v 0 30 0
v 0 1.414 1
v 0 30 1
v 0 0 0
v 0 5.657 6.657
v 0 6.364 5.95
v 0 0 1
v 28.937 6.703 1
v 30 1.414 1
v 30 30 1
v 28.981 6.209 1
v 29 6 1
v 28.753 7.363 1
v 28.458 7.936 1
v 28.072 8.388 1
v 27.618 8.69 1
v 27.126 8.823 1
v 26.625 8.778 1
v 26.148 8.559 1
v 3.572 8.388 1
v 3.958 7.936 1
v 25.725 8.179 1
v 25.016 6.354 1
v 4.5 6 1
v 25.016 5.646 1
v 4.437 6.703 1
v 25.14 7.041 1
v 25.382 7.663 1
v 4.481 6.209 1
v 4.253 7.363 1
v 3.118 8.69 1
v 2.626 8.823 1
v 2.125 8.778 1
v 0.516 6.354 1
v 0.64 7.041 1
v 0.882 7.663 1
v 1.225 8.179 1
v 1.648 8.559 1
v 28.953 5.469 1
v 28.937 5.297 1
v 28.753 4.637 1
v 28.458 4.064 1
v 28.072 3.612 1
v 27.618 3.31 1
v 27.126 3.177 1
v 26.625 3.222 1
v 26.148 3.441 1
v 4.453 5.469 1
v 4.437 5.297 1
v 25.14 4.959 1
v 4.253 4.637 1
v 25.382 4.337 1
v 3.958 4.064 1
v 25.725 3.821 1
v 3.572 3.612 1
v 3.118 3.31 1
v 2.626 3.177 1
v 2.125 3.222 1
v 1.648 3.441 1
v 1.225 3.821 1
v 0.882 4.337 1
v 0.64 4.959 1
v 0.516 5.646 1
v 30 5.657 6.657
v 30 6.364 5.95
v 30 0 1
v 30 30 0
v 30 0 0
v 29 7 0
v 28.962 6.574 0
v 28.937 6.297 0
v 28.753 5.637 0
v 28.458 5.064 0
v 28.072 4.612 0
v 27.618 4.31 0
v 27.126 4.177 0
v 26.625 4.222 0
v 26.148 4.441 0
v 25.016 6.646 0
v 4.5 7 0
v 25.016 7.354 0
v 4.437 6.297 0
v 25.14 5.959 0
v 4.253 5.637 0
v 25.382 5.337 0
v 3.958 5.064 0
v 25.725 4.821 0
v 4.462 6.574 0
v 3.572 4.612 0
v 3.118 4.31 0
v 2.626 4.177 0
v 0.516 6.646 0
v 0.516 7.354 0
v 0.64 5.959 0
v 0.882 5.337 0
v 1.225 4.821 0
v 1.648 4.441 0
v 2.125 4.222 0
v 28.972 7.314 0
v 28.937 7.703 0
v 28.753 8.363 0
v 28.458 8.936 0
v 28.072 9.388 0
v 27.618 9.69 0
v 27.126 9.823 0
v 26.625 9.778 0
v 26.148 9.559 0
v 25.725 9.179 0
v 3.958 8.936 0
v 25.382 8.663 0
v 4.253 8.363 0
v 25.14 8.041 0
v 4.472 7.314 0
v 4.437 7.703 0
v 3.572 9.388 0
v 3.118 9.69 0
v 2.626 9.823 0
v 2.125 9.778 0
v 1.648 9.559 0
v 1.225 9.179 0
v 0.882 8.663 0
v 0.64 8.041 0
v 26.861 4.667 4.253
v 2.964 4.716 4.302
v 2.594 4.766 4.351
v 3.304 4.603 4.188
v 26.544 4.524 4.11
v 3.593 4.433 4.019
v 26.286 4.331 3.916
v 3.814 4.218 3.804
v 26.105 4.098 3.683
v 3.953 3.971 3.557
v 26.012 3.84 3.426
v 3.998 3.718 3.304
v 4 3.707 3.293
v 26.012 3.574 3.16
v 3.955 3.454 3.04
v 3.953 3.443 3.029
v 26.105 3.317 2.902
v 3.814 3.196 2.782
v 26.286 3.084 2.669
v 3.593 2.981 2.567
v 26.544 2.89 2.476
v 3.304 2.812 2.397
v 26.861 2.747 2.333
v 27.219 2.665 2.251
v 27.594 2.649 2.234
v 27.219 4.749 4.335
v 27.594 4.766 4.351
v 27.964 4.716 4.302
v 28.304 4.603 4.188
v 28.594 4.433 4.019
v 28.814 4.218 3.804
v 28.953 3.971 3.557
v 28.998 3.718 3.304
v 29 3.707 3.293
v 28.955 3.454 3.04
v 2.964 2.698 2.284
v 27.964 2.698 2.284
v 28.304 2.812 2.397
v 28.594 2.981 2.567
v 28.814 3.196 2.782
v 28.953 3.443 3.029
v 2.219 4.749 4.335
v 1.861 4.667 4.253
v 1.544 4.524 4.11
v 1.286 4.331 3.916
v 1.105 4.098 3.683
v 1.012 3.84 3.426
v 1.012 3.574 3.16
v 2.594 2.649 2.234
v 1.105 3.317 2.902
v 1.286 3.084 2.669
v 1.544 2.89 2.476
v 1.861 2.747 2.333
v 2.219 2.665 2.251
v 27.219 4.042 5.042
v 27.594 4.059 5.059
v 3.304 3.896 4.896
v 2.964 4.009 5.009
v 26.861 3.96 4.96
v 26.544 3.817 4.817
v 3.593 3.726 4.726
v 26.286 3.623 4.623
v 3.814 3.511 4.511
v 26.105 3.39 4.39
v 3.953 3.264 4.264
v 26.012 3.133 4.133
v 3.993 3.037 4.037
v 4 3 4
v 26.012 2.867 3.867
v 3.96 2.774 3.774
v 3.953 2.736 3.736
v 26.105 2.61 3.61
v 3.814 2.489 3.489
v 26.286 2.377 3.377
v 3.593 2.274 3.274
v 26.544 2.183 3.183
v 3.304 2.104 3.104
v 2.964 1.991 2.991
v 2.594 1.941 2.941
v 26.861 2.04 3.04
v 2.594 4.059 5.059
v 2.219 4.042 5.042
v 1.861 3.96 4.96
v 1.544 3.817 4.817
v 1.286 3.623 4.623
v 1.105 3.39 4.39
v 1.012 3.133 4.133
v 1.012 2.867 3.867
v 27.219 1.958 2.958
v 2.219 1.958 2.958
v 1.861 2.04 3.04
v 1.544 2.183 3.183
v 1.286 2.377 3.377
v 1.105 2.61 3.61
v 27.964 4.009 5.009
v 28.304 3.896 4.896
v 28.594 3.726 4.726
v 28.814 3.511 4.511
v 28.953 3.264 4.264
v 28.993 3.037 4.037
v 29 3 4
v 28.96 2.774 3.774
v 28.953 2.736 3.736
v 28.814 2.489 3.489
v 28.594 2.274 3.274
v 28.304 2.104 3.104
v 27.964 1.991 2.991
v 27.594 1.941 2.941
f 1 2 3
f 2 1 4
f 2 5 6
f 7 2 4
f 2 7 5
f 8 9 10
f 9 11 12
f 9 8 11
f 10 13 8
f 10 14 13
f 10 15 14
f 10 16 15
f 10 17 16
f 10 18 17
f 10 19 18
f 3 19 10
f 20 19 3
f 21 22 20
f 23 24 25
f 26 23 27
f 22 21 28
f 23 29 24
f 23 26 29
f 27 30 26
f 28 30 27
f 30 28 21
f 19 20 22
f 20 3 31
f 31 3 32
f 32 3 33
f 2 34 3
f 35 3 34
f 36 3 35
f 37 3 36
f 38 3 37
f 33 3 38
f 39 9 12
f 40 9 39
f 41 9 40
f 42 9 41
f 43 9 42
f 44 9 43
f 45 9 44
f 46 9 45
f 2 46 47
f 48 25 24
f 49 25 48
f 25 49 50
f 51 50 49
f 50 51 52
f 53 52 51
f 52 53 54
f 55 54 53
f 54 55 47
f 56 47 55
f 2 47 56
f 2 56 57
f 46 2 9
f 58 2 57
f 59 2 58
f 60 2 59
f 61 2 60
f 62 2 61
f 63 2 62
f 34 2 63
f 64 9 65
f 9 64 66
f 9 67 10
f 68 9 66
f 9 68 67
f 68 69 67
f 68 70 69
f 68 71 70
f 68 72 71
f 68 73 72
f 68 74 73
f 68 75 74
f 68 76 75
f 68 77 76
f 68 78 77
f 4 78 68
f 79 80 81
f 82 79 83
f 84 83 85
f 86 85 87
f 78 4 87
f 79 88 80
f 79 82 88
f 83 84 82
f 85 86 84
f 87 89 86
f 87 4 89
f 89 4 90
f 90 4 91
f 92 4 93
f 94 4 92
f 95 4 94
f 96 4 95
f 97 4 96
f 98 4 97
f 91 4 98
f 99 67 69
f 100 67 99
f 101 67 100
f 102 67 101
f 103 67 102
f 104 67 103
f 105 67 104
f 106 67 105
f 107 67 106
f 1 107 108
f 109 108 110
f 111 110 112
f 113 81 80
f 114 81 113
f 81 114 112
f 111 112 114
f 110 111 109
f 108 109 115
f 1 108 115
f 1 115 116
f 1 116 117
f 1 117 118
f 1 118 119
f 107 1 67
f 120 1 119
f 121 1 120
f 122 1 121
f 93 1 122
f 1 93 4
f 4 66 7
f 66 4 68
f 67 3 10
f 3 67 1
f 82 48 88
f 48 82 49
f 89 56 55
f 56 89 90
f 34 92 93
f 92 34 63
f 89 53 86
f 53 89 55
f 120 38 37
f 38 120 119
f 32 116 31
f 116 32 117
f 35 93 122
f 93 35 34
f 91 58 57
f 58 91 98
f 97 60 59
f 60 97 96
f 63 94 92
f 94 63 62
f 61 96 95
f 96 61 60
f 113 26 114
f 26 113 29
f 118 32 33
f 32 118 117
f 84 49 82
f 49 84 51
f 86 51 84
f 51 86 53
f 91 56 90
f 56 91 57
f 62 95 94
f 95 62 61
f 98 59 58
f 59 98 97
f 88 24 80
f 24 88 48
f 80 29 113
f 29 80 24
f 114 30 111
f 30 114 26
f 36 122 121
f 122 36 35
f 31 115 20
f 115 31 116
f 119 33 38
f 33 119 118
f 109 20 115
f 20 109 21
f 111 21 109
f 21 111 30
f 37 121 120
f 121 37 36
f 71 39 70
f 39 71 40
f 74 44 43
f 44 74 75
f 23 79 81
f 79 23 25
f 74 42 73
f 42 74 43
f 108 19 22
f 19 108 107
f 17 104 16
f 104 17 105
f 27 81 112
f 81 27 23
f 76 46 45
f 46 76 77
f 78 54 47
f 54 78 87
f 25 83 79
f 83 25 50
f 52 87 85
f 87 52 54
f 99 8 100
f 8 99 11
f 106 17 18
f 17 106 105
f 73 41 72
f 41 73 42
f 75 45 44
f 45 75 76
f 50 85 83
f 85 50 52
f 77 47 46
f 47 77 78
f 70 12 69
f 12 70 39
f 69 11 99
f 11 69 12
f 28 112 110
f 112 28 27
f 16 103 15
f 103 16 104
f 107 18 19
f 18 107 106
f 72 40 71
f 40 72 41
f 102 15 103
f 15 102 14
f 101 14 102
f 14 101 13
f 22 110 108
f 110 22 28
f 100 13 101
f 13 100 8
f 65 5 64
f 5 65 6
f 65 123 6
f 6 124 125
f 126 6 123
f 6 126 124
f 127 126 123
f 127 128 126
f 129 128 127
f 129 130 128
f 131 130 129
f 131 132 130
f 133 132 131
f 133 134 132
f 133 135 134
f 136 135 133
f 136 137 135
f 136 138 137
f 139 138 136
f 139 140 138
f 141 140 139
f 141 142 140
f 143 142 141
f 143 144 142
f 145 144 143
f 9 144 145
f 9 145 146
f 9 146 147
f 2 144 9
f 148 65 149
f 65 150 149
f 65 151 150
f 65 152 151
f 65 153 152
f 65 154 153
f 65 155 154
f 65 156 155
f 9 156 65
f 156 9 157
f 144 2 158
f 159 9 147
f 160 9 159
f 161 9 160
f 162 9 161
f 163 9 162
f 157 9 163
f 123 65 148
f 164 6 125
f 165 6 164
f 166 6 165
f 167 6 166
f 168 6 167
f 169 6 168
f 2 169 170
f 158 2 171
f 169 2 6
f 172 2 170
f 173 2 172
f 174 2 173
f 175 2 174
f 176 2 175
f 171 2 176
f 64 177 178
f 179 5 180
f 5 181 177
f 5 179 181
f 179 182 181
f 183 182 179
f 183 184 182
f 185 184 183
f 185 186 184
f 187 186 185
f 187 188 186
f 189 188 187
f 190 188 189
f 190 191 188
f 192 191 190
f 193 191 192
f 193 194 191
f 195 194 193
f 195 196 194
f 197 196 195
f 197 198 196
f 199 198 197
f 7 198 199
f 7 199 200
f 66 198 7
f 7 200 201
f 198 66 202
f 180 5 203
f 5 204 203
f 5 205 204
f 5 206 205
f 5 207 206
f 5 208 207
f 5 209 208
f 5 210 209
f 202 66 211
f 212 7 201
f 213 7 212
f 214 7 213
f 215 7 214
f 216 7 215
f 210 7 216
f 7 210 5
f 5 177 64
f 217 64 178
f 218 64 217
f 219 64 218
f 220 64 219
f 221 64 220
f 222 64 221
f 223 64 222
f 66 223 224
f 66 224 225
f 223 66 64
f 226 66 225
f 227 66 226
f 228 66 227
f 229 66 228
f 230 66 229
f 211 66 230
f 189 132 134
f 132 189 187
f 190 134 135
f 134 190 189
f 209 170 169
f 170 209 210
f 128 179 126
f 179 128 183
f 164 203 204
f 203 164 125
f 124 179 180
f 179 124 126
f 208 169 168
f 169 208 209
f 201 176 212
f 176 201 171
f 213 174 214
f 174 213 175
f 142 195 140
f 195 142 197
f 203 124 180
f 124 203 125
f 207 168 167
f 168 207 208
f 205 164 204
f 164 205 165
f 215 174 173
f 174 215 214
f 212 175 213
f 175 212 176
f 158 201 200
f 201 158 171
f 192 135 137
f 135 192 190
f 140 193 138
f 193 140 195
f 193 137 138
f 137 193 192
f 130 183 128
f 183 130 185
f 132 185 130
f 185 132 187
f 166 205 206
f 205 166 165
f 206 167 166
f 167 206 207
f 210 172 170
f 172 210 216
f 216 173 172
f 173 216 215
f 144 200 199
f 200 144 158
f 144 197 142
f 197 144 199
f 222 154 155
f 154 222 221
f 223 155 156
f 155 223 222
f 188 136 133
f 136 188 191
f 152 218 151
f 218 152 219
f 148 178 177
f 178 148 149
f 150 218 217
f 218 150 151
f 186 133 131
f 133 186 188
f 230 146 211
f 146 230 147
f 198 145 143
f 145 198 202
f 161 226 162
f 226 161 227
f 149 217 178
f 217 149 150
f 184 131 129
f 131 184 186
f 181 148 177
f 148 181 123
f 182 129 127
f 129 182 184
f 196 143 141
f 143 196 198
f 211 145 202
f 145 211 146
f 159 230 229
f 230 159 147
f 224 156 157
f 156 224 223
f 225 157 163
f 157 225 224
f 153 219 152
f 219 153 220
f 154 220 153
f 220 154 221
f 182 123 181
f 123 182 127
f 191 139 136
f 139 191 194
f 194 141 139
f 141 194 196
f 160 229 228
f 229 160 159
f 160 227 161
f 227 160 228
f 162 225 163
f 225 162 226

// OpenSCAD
$fn=25;

hole_left = 2.5;
hole_dia  = 1.5;
screwdriver_dia = 2;

module deflector() {
    difference() {
        // deflector wall
        cube([30,30,1]);

        // holes for screwdriver
        translate([hole_left,4,3])
        rotate(a=225, v=[1,0,0])
        cylinder(r=screwdriver_dia, h=10);

        translate([screwdriver_dia+25,4,3])
        rotate(a=225, v=[1,0,0])
        cylinder(r=screwdriver_dia, h=10);
    }
}

module mount() {
    difference() {

        // wall for mount
        translate([0,0,1])
        rotate(a=-45, v=[1,0,0])
        cube([30,1,8]);

        // holes for fixation
        translate([hole_left,4,3])
            rotate(a=45, v=[1,0,0])
        cylinder(r=hole_dia, h=10);

        translate([hole_left+25,4,3])
            rotate(a=45, v=[1,0,0])
        cylinder(r=hole_dia, h=10);

    }
}

deflector();
mount();
